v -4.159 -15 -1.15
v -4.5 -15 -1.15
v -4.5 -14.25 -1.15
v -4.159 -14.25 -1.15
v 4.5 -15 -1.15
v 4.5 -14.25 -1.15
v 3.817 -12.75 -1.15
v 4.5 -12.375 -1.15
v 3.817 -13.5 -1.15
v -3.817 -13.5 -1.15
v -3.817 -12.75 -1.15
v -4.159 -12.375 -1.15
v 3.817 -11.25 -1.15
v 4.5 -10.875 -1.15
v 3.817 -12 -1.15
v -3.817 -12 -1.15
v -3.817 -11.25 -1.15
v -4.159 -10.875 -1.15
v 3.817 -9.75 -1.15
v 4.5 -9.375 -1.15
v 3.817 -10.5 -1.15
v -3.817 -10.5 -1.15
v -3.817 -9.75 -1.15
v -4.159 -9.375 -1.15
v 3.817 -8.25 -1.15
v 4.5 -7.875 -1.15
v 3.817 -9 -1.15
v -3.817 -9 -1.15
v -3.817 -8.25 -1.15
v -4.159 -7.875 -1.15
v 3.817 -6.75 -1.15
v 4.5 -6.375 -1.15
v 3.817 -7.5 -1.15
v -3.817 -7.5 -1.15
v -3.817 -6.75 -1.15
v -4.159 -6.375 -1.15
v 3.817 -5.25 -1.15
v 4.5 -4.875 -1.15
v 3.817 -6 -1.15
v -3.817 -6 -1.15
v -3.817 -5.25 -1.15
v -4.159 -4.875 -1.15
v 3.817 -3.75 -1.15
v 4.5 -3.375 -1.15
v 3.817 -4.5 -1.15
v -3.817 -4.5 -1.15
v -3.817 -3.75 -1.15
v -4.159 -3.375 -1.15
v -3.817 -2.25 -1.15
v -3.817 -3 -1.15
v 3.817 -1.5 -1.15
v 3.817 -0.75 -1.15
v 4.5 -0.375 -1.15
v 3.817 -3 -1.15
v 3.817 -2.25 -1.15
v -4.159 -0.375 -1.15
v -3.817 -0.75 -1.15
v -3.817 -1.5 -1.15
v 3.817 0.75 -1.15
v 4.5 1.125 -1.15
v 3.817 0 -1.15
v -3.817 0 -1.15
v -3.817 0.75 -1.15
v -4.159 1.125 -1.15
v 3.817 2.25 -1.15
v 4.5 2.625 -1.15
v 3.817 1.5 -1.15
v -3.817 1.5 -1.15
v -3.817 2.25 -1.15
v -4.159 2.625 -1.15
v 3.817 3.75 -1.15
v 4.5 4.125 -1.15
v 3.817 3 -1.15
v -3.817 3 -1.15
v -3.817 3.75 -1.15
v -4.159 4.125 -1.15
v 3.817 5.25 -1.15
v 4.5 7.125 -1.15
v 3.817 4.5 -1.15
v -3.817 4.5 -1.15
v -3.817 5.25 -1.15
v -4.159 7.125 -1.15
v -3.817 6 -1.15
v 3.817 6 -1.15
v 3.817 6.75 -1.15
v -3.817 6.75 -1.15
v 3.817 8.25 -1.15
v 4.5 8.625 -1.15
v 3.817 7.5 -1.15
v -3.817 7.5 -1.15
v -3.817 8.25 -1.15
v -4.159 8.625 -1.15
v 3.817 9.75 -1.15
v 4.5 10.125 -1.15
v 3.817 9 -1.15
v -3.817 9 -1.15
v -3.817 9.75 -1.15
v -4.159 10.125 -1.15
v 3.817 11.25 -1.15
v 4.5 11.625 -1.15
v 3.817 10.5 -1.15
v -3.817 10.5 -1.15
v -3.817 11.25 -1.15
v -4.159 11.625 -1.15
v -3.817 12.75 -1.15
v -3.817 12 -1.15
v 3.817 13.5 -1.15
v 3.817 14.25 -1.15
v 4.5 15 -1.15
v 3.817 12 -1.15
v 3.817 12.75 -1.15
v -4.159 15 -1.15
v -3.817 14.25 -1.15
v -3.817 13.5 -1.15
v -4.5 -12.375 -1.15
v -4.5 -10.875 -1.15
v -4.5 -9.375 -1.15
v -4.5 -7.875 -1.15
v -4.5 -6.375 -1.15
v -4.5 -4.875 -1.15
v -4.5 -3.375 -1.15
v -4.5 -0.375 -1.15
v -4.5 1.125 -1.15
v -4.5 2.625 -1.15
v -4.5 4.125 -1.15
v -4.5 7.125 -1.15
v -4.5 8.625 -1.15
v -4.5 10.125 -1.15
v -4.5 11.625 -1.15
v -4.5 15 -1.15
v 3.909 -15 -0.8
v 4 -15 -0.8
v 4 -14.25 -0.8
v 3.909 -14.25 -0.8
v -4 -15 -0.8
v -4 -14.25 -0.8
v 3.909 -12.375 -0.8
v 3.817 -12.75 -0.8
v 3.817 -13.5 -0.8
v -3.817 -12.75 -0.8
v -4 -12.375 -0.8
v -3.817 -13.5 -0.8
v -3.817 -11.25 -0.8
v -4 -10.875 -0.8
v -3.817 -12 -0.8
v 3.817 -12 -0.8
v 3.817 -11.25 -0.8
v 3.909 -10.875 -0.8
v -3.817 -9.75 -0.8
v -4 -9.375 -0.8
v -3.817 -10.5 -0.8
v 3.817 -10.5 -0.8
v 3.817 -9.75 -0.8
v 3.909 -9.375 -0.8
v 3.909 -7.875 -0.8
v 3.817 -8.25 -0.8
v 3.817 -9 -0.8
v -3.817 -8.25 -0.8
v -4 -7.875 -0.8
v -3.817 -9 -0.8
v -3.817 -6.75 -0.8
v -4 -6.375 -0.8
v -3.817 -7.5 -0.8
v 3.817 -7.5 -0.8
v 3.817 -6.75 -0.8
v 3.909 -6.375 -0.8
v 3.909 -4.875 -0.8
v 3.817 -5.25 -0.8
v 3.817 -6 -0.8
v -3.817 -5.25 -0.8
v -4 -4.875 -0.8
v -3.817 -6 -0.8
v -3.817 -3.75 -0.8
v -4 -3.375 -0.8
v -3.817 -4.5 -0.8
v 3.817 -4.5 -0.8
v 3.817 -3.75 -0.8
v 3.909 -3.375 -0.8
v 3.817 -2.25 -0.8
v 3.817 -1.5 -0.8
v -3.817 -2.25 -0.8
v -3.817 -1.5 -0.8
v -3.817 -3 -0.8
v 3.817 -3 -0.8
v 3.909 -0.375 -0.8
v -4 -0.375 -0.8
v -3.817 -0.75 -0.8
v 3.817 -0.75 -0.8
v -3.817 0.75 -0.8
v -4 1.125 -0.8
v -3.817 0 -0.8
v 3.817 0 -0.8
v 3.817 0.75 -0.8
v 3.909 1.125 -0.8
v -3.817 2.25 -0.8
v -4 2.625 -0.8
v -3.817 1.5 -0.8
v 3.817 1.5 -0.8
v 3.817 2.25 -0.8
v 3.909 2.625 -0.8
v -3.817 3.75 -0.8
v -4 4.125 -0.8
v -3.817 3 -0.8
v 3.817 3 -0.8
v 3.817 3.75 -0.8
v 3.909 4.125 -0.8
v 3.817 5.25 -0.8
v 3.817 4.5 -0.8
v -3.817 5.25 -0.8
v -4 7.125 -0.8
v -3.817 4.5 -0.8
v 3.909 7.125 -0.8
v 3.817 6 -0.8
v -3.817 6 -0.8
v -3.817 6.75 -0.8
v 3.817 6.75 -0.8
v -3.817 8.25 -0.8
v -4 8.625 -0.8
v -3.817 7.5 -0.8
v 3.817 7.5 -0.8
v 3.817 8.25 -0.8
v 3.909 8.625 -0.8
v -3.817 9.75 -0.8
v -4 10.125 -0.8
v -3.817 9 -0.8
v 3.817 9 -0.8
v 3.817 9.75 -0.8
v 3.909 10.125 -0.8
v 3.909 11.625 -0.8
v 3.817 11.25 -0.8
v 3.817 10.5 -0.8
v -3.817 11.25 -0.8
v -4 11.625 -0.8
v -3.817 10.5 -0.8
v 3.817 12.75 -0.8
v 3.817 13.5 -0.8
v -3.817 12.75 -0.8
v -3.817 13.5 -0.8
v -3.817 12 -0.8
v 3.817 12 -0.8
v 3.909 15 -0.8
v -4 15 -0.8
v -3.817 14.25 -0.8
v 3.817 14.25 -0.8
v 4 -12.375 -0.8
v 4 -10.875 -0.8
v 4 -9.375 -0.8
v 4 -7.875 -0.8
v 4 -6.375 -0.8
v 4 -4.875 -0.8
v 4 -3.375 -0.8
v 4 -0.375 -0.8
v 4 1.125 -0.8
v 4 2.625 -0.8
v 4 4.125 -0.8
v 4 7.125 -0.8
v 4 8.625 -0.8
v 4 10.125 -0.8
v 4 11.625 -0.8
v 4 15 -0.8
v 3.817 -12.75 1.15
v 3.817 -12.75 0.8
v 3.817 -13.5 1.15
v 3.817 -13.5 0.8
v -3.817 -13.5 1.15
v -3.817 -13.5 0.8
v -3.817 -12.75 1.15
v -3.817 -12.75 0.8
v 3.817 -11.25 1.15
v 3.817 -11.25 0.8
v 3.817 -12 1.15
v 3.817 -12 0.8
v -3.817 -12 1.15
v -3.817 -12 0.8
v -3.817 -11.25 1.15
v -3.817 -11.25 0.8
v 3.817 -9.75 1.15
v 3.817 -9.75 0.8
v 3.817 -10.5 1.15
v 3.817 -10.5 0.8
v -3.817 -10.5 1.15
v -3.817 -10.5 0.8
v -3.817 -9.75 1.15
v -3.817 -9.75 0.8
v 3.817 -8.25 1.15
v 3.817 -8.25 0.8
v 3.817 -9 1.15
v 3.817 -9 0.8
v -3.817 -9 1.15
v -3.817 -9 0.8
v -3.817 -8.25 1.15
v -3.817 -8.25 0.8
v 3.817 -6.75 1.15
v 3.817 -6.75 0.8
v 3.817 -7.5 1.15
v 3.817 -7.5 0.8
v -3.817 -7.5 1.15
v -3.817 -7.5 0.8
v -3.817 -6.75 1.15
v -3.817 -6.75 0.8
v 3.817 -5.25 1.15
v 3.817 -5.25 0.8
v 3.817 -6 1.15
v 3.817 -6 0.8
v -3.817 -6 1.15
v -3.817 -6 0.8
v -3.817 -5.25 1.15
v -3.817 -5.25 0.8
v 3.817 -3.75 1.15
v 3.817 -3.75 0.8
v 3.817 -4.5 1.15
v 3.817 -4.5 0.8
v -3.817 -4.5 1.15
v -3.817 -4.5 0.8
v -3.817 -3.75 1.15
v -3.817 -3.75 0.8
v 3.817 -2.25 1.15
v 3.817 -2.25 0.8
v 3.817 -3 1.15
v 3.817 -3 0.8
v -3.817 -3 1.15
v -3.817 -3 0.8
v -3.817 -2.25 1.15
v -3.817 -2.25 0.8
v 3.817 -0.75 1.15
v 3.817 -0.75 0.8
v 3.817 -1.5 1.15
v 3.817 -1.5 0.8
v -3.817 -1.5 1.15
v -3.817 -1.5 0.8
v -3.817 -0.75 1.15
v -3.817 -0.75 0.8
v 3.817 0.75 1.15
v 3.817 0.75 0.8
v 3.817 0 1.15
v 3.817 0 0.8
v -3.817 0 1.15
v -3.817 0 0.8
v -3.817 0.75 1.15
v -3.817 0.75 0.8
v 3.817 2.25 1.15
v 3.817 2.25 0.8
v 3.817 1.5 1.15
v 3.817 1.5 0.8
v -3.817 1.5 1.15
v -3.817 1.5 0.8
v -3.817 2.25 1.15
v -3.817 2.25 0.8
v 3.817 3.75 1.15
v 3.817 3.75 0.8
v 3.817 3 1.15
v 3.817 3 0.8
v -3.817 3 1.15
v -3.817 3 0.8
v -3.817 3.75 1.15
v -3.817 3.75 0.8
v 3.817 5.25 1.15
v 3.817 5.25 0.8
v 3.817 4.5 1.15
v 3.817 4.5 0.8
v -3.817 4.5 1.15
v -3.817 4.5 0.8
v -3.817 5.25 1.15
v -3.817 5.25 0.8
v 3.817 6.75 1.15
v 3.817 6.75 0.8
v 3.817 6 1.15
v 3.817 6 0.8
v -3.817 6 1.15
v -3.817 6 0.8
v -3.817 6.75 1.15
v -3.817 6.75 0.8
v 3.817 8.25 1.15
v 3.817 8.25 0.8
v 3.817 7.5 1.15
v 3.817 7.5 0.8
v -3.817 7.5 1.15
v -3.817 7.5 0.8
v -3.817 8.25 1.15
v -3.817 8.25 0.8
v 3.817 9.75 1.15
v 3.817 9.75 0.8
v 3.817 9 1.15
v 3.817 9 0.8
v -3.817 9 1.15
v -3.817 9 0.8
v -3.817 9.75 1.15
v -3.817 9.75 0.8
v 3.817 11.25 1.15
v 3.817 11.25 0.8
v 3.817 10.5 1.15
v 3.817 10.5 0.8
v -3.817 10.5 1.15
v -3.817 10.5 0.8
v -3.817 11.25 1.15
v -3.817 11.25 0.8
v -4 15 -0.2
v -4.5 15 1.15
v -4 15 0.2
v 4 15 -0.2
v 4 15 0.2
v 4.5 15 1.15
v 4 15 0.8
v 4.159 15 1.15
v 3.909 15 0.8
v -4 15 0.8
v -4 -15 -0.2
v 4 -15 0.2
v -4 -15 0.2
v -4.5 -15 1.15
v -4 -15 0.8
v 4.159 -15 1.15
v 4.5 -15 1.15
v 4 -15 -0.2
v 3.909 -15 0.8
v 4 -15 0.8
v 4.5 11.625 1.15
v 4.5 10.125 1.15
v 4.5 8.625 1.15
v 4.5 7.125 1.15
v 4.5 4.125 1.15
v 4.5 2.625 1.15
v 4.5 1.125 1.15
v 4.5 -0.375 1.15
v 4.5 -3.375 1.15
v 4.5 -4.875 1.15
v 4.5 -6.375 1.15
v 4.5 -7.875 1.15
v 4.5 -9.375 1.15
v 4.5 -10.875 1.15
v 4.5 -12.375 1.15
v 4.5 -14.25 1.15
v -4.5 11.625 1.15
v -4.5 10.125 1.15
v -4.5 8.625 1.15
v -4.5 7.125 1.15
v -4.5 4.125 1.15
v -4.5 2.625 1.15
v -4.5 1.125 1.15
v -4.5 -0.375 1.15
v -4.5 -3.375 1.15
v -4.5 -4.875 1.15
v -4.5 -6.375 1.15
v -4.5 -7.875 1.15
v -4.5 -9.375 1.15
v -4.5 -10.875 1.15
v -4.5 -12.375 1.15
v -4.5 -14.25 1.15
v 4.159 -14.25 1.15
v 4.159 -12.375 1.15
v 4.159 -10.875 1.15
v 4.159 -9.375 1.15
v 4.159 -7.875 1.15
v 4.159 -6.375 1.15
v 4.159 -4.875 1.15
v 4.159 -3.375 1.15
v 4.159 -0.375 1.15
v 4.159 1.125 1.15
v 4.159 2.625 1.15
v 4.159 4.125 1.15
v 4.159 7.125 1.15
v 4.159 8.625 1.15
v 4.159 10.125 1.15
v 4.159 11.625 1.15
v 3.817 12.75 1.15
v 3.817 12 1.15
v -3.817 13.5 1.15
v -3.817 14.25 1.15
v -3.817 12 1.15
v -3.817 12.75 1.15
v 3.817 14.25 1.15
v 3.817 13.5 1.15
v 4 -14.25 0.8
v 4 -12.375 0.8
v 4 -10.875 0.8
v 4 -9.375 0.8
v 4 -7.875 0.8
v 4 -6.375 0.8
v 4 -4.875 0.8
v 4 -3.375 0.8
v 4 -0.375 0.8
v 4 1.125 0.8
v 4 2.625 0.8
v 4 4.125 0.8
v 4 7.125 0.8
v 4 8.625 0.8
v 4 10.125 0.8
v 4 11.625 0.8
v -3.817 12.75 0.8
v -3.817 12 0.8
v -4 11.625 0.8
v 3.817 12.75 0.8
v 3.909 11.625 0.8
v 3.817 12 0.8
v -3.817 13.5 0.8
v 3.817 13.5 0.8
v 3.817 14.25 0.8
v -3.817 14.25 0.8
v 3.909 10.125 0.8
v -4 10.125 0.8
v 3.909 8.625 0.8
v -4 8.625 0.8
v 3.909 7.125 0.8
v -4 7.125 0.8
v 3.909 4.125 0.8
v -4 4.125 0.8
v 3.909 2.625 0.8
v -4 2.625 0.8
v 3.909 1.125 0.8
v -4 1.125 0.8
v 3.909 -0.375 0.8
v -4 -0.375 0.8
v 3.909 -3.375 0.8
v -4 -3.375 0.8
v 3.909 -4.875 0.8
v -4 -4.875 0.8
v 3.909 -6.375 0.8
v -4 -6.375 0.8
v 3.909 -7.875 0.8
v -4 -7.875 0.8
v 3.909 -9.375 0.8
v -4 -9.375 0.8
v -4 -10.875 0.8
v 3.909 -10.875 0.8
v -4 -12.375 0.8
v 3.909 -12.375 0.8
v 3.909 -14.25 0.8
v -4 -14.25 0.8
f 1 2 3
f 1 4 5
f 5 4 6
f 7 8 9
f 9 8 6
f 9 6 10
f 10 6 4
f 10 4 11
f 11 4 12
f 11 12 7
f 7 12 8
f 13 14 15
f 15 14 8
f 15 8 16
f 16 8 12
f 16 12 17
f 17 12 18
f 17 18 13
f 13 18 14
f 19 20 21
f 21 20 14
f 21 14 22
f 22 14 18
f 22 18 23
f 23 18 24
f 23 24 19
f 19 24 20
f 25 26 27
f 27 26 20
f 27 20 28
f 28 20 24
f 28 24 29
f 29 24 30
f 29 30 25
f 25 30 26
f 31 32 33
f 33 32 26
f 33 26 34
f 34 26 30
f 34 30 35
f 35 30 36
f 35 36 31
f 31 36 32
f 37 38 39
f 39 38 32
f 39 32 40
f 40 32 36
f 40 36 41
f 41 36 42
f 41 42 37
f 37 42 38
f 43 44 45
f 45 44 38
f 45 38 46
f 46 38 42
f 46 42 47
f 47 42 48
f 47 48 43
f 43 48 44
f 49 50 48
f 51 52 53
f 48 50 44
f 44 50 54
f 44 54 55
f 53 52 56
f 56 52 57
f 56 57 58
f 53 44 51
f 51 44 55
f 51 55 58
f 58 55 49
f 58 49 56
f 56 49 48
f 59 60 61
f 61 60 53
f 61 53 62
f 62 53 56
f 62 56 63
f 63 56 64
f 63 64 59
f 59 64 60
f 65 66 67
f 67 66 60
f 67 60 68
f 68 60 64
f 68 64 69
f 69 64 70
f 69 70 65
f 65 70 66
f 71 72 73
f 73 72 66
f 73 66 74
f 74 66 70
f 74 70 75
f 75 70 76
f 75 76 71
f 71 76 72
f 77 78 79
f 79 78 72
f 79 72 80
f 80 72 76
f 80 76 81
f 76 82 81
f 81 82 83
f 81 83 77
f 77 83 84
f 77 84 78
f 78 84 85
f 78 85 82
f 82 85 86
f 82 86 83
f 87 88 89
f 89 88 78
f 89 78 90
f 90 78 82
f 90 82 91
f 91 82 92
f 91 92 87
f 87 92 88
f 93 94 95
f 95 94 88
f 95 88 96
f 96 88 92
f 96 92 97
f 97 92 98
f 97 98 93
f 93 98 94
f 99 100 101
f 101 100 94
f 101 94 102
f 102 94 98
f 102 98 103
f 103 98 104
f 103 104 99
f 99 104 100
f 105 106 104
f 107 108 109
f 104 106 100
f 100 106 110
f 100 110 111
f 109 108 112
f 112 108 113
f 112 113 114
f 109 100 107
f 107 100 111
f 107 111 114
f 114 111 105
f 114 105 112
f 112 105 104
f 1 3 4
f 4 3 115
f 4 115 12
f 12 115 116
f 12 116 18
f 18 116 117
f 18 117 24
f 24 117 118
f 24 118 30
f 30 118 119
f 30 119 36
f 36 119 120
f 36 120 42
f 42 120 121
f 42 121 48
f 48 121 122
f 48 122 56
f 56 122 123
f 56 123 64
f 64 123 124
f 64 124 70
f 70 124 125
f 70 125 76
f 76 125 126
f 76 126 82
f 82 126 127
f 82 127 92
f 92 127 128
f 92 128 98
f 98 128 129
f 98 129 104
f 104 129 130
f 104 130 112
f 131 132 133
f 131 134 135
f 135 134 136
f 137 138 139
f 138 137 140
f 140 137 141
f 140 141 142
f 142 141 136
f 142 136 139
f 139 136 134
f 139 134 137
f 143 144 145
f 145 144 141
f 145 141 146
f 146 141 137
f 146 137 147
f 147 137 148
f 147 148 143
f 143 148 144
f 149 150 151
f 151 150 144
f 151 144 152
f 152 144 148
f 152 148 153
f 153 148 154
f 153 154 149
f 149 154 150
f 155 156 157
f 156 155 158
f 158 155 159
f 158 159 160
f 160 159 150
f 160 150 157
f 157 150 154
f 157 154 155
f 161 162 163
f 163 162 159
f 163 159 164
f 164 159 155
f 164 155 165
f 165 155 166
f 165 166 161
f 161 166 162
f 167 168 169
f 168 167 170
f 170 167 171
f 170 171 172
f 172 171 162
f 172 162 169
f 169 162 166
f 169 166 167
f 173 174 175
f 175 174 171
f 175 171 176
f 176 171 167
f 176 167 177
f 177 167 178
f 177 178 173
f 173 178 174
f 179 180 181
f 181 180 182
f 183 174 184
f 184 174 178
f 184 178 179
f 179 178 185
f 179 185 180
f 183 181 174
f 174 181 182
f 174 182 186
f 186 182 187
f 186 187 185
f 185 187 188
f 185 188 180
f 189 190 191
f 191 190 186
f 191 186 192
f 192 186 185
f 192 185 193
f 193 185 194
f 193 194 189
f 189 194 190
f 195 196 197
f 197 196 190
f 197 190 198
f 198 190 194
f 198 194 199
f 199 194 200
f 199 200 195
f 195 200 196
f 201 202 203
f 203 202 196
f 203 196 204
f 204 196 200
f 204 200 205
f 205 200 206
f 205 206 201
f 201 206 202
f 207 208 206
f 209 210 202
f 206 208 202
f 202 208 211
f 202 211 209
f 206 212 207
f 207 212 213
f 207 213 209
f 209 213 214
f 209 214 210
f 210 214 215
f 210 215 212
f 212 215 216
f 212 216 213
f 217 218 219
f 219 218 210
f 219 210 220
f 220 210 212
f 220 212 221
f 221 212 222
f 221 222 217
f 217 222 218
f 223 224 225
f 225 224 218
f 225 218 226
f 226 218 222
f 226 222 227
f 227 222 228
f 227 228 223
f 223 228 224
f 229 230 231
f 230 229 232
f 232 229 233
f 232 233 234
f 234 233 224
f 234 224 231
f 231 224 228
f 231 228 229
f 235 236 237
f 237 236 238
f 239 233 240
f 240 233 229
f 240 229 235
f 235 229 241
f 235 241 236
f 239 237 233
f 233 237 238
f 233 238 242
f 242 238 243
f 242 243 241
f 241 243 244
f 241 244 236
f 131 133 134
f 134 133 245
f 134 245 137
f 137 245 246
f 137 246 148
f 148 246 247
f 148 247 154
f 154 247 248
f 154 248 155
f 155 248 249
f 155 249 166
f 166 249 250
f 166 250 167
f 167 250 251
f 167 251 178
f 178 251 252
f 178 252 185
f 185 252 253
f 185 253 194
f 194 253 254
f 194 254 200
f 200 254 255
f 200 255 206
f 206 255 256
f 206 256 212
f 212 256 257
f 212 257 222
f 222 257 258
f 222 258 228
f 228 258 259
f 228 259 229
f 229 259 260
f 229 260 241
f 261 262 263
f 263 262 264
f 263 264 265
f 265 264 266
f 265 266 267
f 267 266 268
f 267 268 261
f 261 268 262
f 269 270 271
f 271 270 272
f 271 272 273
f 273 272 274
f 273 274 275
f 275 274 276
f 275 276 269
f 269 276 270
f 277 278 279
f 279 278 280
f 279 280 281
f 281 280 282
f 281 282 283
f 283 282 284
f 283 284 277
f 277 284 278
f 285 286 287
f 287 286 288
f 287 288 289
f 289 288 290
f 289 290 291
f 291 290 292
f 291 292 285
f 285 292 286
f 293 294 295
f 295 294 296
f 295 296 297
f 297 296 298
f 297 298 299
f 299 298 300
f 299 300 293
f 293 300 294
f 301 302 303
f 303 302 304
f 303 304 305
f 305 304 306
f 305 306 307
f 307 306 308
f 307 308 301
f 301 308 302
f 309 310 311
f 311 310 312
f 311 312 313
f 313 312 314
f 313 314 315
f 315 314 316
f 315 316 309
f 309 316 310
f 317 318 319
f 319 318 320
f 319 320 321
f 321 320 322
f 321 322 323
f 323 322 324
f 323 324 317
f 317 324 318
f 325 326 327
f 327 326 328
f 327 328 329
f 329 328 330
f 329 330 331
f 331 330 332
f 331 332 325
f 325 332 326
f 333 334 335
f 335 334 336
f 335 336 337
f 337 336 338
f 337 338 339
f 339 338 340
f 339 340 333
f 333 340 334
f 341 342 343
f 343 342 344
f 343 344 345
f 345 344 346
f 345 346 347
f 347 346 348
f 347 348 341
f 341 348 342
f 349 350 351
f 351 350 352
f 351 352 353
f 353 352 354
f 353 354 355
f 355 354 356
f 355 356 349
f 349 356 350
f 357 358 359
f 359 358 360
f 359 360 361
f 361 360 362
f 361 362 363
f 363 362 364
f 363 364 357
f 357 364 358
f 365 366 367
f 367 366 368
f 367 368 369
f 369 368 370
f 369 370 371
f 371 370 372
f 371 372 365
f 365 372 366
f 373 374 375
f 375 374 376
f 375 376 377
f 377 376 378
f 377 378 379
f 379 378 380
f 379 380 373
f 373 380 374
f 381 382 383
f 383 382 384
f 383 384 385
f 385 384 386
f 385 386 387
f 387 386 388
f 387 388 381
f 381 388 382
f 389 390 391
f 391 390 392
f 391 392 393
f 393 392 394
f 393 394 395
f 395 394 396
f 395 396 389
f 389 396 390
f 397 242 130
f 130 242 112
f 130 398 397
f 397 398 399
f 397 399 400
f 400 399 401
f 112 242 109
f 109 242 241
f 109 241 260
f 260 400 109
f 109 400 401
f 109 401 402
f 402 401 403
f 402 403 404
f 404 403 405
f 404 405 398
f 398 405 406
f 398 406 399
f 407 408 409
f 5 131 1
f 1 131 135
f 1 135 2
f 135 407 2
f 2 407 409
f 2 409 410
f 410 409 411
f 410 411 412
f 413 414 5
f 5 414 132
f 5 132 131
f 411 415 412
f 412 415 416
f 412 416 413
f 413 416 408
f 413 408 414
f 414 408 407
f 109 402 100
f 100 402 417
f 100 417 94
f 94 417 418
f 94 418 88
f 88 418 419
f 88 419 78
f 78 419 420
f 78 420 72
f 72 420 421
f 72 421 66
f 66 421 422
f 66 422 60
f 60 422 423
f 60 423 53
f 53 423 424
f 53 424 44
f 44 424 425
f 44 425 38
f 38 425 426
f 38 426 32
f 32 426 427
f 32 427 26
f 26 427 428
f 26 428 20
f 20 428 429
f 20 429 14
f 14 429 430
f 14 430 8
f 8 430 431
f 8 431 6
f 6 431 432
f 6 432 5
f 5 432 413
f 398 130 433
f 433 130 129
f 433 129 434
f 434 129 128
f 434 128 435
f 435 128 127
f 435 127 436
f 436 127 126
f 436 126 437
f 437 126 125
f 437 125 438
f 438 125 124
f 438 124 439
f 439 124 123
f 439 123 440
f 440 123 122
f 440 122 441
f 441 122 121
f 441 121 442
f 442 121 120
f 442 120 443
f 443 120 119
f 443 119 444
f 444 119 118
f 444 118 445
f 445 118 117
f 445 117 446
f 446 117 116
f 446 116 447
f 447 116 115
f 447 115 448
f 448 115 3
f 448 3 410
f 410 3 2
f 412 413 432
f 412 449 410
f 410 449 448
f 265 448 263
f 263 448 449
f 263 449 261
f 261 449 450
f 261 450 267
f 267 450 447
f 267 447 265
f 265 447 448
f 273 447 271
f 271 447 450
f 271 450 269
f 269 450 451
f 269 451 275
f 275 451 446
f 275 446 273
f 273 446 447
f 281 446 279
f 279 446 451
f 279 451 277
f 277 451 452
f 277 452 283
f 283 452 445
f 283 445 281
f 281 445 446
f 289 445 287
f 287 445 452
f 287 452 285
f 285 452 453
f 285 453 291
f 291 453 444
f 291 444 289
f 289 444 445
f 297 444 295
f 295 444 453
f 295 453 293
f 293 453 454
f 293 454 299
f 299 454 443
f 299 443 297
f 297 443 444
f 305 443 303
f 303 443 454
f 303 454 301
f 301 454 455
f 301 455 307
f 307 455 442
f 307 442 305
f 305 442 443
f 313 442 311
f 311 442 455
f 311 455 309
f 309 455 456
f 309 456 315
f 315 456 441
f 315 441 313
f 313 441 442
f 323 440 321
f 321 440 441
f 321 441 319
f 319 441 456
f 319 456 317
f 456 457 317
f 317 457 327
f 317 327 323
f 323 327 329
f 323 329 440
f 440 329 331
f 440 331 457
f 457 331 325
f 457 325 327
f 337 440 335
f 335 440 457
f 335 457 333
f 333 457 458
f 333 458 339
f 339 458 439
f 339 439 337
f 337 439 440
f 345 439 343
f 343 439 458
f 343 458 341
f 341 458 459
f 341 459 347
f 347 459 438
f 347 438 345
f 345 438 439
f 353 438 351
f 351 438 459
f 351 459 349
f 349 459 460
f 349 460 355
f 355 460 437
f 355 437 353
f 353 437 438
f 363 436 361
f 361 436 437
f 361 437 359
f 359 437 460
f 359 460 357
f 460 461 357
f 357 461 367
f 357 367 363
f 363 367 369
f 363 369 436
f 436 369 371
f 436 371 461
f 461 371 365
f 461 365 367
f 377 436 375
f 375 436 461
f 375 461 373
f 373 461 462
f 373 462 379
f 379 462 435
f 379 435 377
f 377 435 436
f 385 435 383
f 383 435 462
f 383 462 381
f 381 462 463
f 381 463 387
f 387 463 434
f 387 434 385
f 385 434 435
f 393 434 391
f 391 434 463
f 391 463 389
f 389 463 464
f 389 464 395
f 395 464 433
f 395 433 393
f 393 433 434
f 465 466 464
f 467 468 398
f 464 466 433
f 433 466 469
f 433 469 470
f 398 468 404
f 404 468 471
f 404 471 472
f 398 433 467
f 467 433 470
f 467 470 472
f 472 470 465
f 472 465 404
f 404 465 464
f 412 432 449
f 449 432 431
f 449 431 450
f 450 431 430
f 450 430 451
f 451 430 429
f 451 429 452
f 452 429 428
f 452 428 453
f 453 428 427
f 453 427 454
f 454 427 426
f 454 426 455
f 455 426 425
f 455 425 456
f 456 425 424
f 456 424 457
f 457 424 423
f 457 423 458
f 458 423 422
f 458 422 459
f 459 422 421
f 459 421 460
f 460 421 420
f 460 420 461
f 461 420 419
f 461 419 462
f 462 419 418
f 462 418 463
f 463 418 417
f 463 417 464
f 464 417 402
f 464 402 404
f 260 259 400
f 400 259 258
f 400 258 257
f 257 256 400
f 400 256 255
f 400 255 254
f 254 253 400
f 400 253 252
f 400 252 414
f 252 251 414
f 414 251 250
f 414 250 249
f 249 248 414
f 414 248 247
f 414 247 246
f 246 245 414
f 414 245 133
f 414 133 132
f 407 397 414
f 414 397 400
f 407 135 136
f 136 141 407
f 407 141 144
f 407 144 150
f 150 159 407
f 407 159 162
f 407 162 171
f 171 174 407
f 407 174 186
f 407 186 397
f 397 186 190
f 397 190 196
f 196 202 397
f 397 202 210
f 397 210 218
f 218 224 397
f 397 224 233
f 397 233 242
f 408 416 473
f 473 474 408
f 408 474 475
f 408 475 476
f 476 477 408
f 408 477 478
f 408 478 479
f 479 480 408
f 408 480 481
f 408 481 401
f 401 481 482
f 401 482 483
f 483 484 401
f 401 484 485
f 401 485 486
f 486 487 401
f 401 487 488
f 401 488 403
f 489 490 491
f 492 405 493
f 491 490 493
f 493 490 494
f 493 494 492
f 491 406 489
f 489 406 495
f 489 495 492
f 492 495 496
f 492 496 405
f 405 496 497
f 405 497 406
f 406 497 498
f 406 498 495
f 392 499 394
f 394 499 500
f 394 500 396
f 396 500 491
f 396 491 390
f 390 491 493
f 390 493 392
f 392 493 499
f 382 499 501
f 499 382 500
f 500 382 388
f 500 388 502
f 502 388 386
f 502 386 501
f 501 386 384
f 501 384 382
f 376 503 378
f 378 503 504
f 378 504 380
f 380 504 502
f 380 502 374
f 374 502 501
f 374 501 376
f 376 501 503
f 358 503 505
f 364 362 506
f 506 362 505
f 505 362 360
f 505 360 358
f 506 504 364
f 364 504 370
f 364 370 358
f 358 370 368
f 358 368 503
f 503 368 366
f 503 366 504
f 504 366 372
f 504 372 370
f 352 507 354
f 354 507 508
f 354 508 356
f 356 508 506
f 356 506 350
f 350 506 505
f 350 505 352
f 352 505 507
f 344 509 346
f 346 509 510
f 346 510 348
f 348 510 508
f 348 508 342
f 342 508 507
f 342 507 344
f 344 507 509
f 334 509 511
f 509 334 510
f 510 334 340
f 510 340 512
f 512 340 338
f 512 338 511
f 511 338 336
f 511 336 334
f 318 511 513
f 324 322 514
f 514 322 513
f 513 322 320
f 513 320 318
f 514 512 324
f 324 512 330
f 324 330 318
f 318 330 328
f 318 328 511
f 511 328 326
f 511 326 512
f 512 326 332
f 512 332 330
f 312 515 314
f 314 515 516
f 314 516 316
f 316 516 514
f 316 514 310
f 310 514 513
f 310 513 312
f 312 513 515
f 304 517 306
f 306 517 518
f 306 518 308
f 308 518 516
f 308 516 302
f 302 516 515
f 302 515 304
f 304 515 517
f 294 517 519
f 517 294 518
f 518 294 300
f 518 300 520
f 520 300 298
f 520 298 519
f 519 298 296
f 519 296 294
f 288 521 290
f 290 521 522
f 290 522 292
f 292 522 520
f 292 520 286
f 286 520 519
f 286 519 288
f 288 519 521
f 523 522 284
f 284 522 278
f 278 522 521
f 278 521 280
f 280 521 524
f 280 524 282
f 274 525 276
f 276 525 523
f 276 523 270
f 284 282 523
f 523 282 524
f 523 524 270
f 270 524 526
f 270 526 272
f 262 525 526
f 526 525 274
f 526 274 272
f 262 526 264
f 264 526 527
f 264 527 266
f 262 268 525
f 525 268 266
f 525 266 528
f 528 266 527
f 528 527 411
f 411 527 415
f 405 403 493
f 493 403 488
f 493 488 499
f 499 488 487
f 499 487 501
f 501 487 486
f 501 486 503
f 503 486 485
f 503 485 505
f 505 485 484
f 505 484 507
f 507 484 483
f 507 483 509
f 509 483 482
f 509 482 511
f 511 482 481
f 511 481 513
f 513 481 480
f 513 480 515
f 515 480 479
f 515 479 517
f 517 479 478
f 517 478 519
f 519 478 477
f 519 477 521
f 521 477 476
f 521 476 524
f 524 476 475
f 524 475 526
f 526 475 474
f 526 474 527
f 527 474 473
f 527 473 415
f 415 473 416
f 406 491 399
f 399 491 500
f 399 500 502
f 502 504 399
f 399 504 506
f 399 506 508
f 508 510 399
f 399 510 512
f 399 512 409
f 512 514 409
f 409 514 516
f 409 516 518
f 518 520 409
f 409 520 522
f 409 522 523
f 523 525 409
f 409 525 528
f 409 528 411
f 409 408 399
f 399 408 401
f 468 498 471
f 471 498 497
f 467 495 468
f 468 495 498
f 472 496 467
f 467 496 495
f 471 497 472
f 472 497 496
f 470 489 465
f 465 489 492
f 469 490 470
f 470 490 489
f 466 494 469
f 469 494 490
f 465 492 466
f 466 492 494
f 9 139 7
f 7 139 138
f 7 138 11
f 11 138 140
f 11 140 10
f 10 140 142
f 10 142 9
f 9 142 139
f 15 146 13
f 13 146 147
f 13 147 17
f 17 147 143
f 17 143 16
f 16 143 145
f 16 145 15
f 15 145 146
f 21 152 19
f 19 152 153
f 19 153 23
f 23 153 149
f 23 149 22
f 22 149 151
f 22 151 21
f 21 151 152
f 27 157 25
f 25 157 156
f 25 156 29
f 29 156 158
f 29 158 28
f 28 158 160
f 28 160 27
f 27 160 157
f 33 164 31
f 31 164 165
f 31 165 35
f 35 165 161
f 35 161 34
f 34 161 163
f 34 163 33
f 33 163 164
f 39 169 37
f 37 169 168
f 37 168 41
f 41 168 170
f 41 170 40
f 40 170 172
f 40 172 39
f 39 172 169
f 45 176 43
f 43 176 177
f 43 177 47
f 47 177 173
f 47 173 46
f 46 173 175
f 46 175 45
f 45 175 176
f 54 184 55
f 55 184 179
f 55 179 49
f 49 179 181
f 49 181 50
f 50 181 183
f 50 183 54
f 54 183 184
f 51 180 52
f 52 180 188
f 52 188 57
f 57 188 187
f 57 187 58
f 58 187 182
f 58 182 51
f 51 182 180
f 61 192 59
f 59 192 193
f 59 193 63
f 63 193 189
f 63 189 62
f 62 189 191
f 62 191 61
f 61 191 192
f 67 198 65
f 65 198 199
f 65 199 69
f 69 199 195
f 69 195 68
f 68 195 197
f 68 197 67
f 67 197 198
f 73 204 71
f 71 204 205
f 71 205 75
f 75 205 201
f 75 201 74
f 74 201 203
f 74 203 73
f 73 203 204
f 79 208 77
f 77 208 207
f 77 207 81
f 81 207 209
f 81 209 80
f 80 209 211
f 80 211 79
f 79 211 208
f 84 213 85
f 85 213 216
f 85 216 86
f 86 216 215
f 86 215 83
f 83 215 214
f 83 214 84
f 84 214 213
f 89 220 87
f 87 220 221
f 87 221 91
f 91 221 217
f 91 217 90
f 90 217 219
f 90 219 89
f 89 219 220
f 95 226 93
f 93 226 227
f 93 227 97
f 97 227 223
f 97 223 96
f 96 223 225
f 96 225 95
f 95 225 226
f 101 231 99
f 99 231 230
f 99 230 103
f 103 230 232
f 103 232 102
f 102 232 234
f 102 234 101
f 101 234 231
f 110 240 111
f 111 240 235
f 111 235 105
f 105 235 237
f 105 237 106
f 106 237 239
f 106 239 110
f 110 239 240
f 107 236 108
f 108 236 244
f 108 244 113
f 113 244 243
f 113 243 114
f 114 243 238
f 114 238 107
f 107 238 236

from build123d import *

# Parameters (mm, degrees)
SKETCH1_W                = 9
SKETCH1_H                = 2.3
BOSS_EXTRUDE1_DEPTH      = 15
CUT_EXTRUDE1_START       = -31
SKETCH2_W                = 8
SKETCH2_H                = 0.6
CUT_EXTRUDE1_DEPTH       = 32
SKETCH3_W                = 7.634272068
SKETCH3_H                = 0.75
CUT_EXTRUDE2_DEPTH       = 0.35
LPATTERN1_COUNT          = 19
LPATTERN1_PITCH          = 1.5
MIRROR2_COPY_1_SKETCH_W  = 7.634272068
MIRROR2_COPY_1_SKETCH_H  = 0.75
MIRROR2_COPY_1_DEPTH     = 0.35
MIRROR2_COPY_2_SKETCH_W  = 7.634272068
MIRROR2_COPY_2_SKETCH_H  = 0.75
MIRROR2_COPY_2_DEPTH     = 0.35
MIRROR2_COPY_3_SKETCH_W  = 7.634272068
MIRROR2_COPY_3_SKETCH_H  = 0.75
MIRROR2_COPY_3_DEPTH     = 0.35
MIRROR2_COPY_4_SKETCH_W  = 7.634272068
MIRROR2_COPY_4_SKETCH_H  = 0.75
MIRROR2_COPY_4_DEPTH     = 0.35
MIRROR2_COPY_5_SKETCH_W  = 7.634272068
MIRROR2_COPY_5_SKETCH_H  = 0.75
MIRROR2_COPY_5_DEPTH     = 0.35
MIRROR2_COPY_6_SKETCH_W  = 7.634272068
MIRROR2_COPY_6_SKETCH_H  = 0.75
MIRROR2_COPY_6_DEPTH     = 0.35
MIRROR2_COPY_7_SKETCH_W  = 7.634272068
MIRROR2_COPY_7_SKETCH_H  = 0.75
MIRROR2_COPY_7_DEPTH     = 0.35
MIRROR2_COPY_8_SKETCH_W  = 7.634272068
MIRROR2_COPY_8_SKETCH_H  = 0.75
MIRROR2_COPY_8_DEPTH     = 0.35
MIRROR2_COPY_9_SKETCH_W  = 7.634272068
MIRROR2_COPY_9_SKETCH_H  = 0.75
MIRROR2_COPY_9_DEPTH     = 0.35
MIRROR2_COPY_10_SKETCH_W = 7.634272068
MIRROR2_COPY_10_SKETCH_H = 0.75
MIRROR2_COPY_10_DEPTH    = 0.35
MIRROR2_COPY_11_SKETCH_W = 7.634272068
MIRROR2_COPY_11_SKETCH_H = 0.75
MIRROR2_COPY_11_DEPTH    = 0.35
MIRROR2_COPY_12_SKETCH_W = 7.634272068
MIRROR2_COPY_12_SKETCH_H = 0.75
MIRROR2_COPY_12_DEPTH    = 0.35
MIRROR2_COPY_13_SKETCH_W = 7.634272068
MIRROR2_COPY_13_SKETCH_H = 0.75
MIRROR2_COPY_13_DEPTH    = 0.35
MIRROR2_COPY_14_SKETCH_W = 7.634272068
MIRROR2_COPY_14_SKETCH_H = 0.75
MIRROR2_COPY_14_DEPTH    = 0.35
MIRROR2_COPY_15_SKETCH_W = 7.634272068
MIRROR2_COPY_15_SKETCH_H = 0.75
MIRROR2_COPY_15_DEPTH    = 0.35
MIRROR2_COPY_16_SKETCH_W = 7.634272068
MIRROR2_COPY_16_SKETCH_H = 0.75
MIRROR2_COPY_16_DEPTH    = 0.35
MIRROR2_COPY_17_SKETCH_W = 7.634272068
MIRROR2_COPY_17_SKETCH_H = 0.75
MIRROR2_COPY_17_DEPTH    = 0.35
MIRROR2_COPY_18_SKETCH_W = 7.634272068
MIRROR2_COPY_18_SKETCH_H = 0.75
MIRROR2_COPY_18_DEPTH    = 0.35


with BuildPart() as part:
    # Sketch1 → Boss-Extrude1 (new body, symmetric)
    with BuildSketch(Plane(origin=(0, 0, 0), x_dir=(1, 0, 0), z_dir=(0, 1, 0))):
        Rectangle(SKETCH1_W, SKETCH1_H)
    extrude(amount=BOSS_EXTRUDE1_DEPTH, both=True)

    # Sketch2 → Cut-Extrude1 (cut)
    with BuildSketch(Plane(origin=(0, 15, 0), x_dir=(1, 0, 0), z_dir=(0, 1, 0)).offset(CUT_EXTRUDE1_START)):
        with Locations((0, 0.5)):
            Rectangle(SKETCH2_W, SKETCH2_H)
    cut_extrude1 = extrude(amount=CUT_EXTRUDE1_DEPTH, mode=Mode.SUBTRACT)

    # Mirror1: Cut-Extrude1 across plane
    add(cut_extrude1.mirror(Plane.XY), mode=Mode.SUBTRACT)

    # Sketch3 → Cut-Extrude2 (cut)
    with BuildSketch(Plane.XY.offset(1.15)):
        with Locations((0, 13.875)):
            Rectangle(SKETCH3_W, SKETCH3_H)
    cut_extrude2 = extrude(amount=-CUT_EXTRUDE2_DEPTH, mode=Mode.SUBTRACT)

    # LPattern1: Cut-Extrude2 ×19
    with Locations(*[(0, -i * LPATTERN1_PITCH, 0) for i in range(1, LPATTERN1_COUNT)]):
        add(cut_extrude2, mode=Mode.SUBTRACT)

    # Mirror2: Cut-Extrude2 across plane
    add(cut_extrude2.mirror(Plane.XY), mode=Mode.SUBTRACT)

    # Mirror2 copy 1 sketch → Mirror2 copy 1 (cut)
    with BuildSketch(Plane(origin=(0, -1.5, -1.15), x_dir=(1, 0, 0), z_dir=(0, 0, -1))):
        with Locations((0, -13.875)):
            Rectangle(MIRROR2_COPY_1_SKETCH_W, MIRROR2_COPY_1_SKETCH_H)
    extrude(amount=-MIRROR2_COPY_1_DEPTH, mode=Mode.SUBTRACT)

    # Mirror2 copy 2 sketch → Mirror2 copy 2 (cut)
    with BuildSketch(Plane(origin=(0, -3, -1.15), x_dir=(1, 0, 0), z_dir=(0, 0, -1))):
        with Locations((0, -13.875)):
            Rectangle(MIRROR2_COPY_2_SKETCH_W, MIRROR2_COPY_2_SKETCH_H)
    extrude(amount=-MIRROR2_COPY_2_DEPTH, mode=Mode.SUBTRACT)

    # Mirror2 copy 3 sketch → Mirror2 copy 3 (cut)
    with BuildSketch(Plane(origin=(0, -4.5, -1.15), x_dir=(1, 0, 0), z_dir=(0, 0, -1))):
        with Locations((0, -13.875)):
            Rectangle(MIRROR2_COPY_3_SKETCH_W, MIRROR2_COPY_3_SKETCH_H)
    extrude(amount=-MIRROR2_COPY_3_DEPTH, mode=Mode.SUBTRACT)

    # Mirror2 copy 4 sketch → Mirror2 copy 4 (cut)
    with BuildSketch(Plane(origin=(0, -6, -1.15), x_dir=(1, 0, 0), z_dir=(0, 0, -1))):
        with Locations((0, -13.875)):
            Rectangle(MIRROR2_COPY_4_SKETCH_W, MIRROR2_COPY_4_SKETCH_H)
    extrude(amount=-MIRROR2_COPY_4_DEPTH, mode=Mode.SUBTRACT)

    # Mirror2 copy 5 sketch → Mirror2 copy 5 (cut)
    with BuildSketch(Plane(origin=(0, -7.5, -1.15), x_dir=(1, 0, 0), z_dir=(0, 0, -1))):
        with Locations((0, -13.875)):
            Rectangle(MIRROR2_COPY_5_SKETCH_W, MIRROR2_COPY_5_SKETCH_H)
    extrude(amount=-MIRROR2_COPY_5_DEPTH, mode=Mode.SUBTRACT)

    # Mirror2 copy 6 sketch → Mirror2 copy 6 (cut)
    with BuildSketch(Plane(origin=(0, -9, -1.15), x_dir=(1, 0, 0), z_dir=(0, 0, -1))):
        with Locations((0, -13.875)):
            Rectangle(MIRROR2_COPY_6_SKETCH_W, MIRROR2_COPY_6_SKETCH_H)
    extrude(amount=-MIRROR2_COPY_6_DEPTH, mode=Mode.SUBTRACT)

    # Mirror2 copy 7 sketch → Mirror2 copy 7 (cut)
    with BuildSketch(Plane(origin=(0, -10.5, -1.15), x_dir=(1, 0, 0), z_dir=(0, 0, -1))):
        with Locations((0, -13.875)):
            Rectangle(MIRROR2_COPY_7_SKETCH_W, MIRROR2_COPY_7_SKETCH_H)
    extrude(amount=-MIRROR2_COPY_7_DEPTH, mode=Mode.SUBTRACT)

    # Mirror2 copy 8 sketch → Mirror2 copy 8 (cut)
    with BuildSketch(Plane(origin=(0, -12, -1.15), x_dir=(1, 0, 0), z_dir=(0, 0, -1))):
        with Locations((0, -13.875)):
            Rectangle(MIRROR2_COPY_8_SKETCH_W, MIRROR2_COPY_8_SKETCH_H)
    extrude(amount=-MIRROR2_COPY_8_DEPTH, mode=Mode.SUBTRACT)

    # Mirror2 copy 9 sketch → Mirror2 copy 9 (cut)
    with BuildSketch(Plane(origin=(0, -13.5, -1.15), x_dir=(1, 0, 0), z_dir=(0, 0, -1))):
        with Locations((0, -13.875)):
            Rectangle(MIRROR2_COPY_9_SKETCH_W, MIRROR2_COPY_9_SKETCH_H)
    extrude(amount=-MIRROR2_COPY_9_DEPTH, mode=Mode.SUBTRACT)

    # Mirror2 copy 10 sketch → Mirror2 copy 10 (cut)
    with BuildSketch(Plane(origin=(0, -15, -1.15), x_dir=(1, 0, 0), z_dir=(0, 0, -1))):
        with Locations((0, -13.875)):
            Rectangle(MIRROR2_COPY_10_SKETCH_W, MIRROR2_COPY_10_SKETCH_H)
    extrude(amount=-MIRROR2_COPY_10_DEPTH, mode=Mode.SUBTRACT)

    # Mirror2 copy 11 sketch → Mirror2 copy 11 (cut)
    with BuildSketch(Plane(origin=(0, -16.5, -1.15), x_dir=(1, 0, 0), z_dir=(0, 0, -1))):
        with Locations((0, -13.875)):
            Rectangle(MIRROR2_COPY_11_SKETCH_W, MIRROR2_COPY_11_SKETCH_H)
    extrude(amount=-MIRROR2_COPY_11_DEPTH, mode=Mode.SUBTRACT)

    # Mirror2 copy 12 sketch → Mirror2 copy 12 (cut)
    with BuildSketch(Plane(origin=(0, -18, -1.15), x_dir=(1, 0, 0), z_dir=(0, 0, -1))):
        with Locations((0, -13.875)):
            Rectangle(MIRROR2_COPY_12_SKETCH_W, MIRROR2_COPY_12_SKETCH_H)
    extrude(amount=-MIRROR2_COPY_12_DEPTH, mode=Mode.SUBTRACT)

    # Mirror2 copy 13 sketch → Mirror2 copy 13 (cut)
    with BuildSketch(Plane(origin=(0, -19.5, -1.15), x_dir=(1, 0, 0), z_dir=(0, 0, -1))):
        with Locations((0, -13.875)):
            Rectangle(MIRROR2_COPY_13_SKETCH_W, MIRROR2_COPY_13_SKETCH_H)
    extrude(amount=-MIRROR2_COPY_13_DEPTH, mode=Mode.SUBTRACT)

    # Mirror2 copy 14 sketch → Mirror2 copy 14 (cut)
    with BuildSketch(Plane(origin=(0, -21, -1.15), x_dir=(1, 0, 0), z_dir=(0, 0, -1))):
        with Locations((0, -13.875)):
            Rectangle(MIRROR2_COPY_14_SKETCH_W, MIRROR2_COPY_14_SKETCH_H)
    extrude(amount=-MIRROR2_COPY_14_DEPTH, mode=Mode.SUBTRACT)

    # Mirror2 copy 15 sketch → Mirror2 copy 15 (cut)
    with BuildSketch(Plane(origin=(0, -22.5, -1.15), x_dir=(1, 0, 0), z_dir=(0, 0, -1))):
        with Locations((0, -13.875)):
            Rectangle(MIRROR2_COPY_15_SKETCH_W, MIRROR2_COPY_15_SKETCH_H)
    extrude(amount=-MIRROR2_COPY_15_DEPTH, mode=Mode.SUBTRACT)

    # Mirror2 copy 16 sketch → Mirror2 copy 16 (cut)
    with BuildSketch(Plane(origin=(0, -24, -1.15), x_dir=(1, 0, 0), z_dir=(0, 0, -1))):
        with Locations((0, -13.875)):
            Rectangle(MIRROR2_COPY_16_SKETCH_W, MIRROR2_COPY_16_SKETCH_H)
    extrude(amount=-MIRROR2_COPY_16_DEPTH, mode=Mode.SUBTRACT)

    # Mirror2 copy 17 sketch → Mirror2 copy 17 (cut)
    with BuildSketch(Plane(origin=(0, -25.5, -1.15), x_dir=(1, 0, 0), z_dir=(0, 0, -1))):
        with Locations((0, -13.875)):
            Rectangle(MIRROR2_COPY_17_SKETCH_W, MIRROR2_COPY_17_SKETCH_H)
    extrude(amount=-MIRROR2_COPY_17_DEPTH, mode=Mode.SUBTRACT)

    # Mirror2 copy 18 sketch → Mirror2 copy 18 (cut)
    with BuildSketch(Plane(origin=(0, -27, -1.15), x_dir=(1, 0, 0), z_dir=(0, 0, -1))):
        with Locations((0, -13.875)):
            Rectangle(MIRROR2_COPY_18_SKETCH_W, MIRROR2_COPY_18_SKETCH_H)
    extrude(amount=-MIRROR2_COPY_18_DEPTH, mode=Mode.SUBTRACT)


solid = part.part
